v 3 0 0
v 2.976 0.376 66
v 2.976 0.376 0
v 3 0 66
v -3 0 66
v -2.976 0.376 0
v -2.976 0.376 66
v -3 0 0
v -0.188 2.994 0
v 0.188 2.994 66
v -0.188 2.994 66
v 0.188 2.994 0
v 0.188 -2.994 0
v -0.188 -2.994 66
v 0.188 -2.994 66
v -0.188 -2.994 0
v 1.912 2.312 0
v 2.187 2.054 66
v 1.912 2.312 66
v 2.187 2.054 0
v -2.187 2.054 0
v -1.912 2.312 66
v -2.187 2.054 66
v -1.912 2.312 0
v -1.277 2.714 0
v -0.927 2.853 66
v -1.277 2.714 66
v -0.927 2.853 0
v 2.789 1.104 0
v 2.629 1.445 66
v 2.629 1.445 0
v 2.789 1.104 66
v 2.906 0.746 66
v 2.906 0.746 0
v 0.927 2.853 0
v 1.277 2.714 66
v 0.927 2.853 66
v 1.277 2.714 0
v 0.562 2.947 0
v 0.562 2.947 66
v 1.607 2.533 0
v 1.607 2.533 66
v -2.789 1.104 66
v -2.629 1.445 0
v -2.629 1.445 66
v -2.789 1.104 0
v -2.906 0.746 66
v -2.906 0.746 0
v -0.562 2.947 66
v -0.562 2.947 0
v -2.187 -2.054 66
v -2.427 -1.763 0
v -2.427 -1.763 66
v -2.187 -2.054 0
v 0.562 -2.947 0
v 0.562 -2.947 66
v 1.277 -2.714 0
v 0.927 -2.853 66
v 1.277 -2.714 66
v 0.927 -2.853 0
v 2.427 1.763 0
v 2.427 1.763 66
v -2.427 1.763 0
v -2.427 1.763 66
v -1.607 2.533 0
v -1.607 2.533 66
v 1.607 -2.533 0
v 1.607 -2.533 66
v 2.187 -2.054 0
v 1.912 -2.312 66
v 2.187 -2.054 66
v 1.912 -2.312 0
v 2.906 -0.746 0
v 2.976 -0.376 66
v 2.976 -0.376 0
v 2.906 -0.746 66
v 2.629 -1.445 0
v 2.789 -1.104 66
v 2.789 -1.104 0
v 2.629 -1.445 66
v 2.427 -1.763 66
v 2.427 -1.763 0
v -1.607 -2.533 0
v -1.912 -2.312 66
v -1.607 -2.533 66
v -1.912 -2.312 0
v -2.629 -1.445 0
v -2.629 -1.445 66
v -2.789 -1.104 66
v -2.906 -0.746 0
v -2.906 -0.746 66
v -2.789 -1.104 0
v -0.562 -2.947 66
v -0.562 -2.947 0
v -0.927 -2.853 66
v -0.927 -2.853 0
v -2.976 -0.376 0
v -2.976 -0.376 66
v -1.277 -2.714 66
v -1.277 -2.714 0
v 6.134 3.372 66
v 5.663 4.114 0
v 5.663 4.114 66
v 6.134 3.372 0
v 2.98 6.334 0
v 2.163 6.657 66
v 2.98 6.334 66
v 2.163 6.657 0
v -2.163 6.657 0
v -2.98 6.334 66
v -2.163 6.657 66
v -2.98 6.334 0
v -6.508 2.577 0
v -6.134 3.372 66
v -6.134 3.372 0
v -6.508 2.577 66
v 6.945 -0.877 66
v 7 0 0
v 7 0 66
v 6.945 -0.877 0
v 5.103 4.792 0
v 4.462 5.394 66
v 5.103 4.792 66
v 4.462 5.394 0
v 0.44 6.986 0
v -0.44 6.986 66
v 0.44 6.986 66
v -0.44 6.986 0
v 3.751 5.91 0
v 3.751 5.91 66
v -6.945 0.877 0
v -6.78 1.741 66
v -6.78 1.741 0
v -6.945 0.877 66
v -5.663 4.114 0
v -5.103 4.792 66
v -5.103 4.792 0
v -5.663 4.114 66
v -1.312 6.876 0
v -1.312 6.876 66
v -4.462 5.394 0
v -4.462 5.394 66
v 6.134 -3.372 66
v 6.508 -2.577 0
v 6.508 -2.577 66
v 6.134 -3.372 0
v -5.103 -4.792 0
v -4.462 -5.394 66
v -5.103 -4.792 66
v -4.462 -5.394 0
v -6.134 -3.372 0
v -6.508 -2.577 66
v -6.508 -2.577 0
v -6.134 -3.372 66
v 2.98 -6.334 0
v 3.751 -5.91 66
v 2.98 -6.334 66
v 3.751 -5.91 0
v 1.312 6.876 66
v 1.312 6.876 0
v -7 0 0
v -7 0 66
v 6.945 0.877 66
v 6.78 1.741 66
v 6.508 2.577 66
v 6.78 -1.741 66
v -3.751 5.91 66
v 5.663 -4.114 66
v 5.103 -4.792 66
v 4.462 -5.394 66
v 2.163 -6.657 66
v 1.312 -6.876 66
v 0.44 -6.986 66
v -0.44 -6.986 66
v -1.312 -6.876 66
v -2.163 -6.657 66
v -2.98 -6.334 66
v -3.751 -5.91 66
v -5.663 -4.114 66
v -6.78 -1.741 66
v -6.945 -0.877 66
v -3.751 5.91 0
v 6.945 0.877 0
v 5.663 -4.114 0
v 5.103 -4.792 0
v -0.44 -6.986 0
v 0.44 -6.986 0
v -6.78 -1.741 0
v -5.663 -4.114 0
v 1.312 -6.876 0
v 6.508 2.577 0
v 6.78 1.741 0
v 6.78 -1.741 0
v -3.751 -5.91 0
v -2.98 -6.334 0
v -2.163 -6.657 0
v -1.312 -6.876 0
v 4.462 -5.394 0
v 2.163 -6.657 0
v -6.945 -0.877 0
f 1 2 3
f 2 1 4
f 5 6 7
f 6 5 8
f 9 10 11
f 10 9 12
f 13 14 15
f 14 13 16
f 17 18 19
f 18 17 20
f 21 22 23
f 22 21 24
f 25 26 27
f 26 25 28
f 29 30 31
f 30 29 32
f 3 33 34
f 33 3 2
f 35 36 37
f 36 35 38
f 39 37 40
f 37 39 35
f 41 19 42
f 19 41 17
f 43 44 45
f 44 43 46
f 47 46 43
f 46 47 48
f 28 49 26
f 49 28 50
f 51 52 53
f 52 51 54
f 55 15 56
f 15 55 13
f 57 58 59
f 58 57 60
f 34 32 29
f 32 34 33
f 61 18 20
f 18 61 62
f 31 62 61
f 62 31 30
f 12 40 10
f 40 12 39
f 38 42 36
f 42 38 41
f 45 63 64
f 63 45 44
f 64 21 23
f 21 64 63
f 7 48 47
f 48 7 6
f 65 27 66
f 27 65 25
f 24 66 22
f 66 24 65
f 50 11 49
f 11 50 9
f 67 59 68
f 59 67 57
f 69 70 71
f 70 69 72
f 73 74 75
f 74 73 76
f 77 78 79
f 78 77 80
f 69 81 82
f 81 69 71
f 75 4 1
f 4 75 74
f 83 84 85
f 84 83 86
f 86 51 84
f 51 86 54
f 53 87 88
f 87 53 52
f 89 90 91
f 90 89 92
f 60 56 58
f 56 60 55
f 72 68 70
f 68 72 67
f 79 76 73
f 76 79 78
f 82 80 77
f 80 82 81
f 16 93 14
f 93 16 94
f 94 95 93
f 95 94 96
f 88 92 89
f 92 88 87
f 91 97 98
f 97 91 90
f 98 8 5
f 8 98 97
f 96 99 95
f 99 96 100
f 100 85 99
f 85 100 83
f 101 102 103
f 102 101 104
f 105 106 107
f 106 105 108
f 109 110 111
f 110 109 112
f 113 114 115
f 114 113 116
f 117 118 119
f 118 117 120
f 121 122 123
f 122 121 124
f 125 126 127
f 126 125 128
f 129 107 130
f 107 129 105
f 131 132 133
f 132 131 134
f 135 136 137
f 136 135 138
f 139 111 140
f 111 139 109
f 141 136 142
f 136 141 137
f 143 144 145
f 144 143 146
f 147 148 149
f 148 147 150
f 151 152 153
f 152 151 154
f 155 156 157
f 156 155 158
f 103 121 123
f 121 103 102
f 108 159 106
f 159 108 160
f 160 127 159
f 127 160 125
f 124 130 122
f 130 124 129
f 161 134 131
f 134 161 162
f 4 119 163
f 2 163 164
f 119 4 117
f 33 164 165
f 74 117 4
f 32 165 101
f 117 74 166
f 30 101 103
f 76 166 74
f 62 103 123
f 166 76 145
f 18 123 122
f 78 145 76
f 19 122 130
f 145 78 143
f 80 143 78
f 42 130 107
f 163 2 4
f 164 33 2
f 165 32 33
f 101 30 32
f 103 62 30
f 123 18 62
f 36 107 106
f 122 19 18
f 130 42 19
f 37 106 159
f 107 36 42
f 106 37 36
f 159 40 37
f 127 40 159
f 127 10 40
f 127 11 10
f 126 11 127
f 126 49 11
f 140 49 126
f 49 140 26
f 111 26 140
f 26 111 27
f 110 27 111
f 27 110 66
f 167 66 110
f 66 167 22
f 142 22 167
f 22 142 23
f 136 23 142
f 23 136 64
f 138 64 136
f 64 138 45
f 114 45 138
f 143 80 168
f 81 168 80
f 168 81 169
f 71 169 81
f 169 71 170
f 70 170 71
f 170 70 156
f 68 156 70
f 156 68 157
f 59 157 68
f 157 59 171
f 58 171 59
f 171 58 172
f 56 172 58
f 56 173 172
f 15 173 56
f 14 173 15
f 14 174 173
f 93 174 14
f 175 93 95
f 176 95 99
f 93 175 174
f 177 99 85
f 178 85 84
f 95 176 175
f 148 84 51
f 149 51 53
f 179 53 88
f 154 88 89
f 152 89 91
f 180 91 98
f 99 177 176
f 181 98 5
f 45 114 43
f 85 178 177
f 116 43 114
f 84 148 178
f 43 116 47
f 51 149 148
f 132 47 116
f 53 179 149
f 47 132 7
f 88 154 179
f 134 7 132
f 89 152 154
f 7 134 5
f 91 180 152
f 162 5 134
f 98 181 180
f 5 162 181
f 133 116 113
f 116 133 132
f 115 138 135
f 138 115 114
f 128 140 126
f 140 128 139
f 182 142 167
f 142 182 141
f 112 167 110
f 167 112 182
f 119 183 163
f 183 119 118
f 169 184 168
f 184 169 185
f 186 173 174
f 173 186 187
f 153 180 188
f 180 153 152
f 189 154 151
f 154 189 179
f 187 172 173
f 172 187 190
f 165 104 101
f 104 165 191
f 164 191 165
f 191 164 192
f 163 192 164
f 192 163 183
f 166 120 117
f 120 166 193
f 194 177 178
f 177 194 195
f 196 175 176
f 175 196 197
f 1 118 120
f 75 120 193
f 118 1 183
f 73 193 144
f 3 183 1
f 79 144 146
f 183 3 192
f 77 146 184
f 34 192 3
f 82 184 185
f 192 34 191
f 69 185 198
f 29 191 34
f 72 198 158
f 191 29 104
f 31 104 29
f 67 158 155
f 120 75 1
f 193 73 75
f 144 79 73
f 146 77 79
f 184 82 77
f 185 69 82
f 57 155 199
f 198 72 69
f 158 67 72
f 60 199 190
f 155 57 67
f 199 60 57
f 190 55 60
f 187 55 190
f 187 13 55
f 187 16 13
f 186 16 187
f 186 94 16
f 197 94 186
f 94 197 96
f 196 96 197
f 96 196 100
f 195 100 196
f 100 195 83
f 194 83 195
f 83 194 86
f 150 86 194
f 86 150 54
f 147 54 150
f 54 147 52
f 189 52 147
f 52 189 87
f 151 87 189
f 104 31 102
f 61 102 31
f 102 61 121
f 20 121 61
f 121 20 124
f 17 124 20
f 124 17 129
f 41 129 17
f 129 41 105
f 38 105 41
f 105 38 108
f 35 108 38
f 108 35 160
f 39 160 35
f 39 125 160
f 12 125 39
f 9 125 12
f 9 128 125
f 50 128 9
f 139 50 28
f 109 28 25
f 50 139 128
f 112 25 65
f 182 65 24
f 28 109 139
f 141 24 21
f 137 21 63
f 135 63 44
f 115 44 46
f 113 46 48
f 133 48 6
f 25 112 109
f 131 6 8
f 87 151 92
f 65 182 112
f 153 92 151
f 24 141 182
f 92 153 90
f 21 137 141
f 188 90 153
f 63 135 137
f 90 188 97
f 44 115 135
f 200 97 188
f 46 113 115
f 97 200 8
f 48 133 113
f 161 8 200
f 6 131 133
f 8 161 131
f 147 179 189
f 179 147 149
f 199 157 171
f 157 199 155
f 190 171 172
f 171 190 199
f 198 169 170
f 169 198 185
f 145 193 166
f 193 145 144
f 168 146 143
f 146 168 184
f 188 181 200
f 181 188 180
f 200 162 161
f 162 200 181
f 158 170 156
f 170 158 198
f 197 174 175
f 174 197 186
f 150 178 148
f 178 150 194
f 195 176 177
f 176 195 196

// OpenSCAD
$fn = 50;


difference() {
	union() {
		cylinder(h = 66, r = 7.0000000000);
	}
	union() {
		translate(v = [0.0000000000, 0.0000000000, -100.0000000000]) {
			cylinder(h = 200, r = 3.0000000000);
		}
		cylinder(h = 66, r = 1.5000000000);
		cylinder(h = 66, r = 1.5000000000);
		cylinder(h = 66, r = 1.5000000000);
	}
}
